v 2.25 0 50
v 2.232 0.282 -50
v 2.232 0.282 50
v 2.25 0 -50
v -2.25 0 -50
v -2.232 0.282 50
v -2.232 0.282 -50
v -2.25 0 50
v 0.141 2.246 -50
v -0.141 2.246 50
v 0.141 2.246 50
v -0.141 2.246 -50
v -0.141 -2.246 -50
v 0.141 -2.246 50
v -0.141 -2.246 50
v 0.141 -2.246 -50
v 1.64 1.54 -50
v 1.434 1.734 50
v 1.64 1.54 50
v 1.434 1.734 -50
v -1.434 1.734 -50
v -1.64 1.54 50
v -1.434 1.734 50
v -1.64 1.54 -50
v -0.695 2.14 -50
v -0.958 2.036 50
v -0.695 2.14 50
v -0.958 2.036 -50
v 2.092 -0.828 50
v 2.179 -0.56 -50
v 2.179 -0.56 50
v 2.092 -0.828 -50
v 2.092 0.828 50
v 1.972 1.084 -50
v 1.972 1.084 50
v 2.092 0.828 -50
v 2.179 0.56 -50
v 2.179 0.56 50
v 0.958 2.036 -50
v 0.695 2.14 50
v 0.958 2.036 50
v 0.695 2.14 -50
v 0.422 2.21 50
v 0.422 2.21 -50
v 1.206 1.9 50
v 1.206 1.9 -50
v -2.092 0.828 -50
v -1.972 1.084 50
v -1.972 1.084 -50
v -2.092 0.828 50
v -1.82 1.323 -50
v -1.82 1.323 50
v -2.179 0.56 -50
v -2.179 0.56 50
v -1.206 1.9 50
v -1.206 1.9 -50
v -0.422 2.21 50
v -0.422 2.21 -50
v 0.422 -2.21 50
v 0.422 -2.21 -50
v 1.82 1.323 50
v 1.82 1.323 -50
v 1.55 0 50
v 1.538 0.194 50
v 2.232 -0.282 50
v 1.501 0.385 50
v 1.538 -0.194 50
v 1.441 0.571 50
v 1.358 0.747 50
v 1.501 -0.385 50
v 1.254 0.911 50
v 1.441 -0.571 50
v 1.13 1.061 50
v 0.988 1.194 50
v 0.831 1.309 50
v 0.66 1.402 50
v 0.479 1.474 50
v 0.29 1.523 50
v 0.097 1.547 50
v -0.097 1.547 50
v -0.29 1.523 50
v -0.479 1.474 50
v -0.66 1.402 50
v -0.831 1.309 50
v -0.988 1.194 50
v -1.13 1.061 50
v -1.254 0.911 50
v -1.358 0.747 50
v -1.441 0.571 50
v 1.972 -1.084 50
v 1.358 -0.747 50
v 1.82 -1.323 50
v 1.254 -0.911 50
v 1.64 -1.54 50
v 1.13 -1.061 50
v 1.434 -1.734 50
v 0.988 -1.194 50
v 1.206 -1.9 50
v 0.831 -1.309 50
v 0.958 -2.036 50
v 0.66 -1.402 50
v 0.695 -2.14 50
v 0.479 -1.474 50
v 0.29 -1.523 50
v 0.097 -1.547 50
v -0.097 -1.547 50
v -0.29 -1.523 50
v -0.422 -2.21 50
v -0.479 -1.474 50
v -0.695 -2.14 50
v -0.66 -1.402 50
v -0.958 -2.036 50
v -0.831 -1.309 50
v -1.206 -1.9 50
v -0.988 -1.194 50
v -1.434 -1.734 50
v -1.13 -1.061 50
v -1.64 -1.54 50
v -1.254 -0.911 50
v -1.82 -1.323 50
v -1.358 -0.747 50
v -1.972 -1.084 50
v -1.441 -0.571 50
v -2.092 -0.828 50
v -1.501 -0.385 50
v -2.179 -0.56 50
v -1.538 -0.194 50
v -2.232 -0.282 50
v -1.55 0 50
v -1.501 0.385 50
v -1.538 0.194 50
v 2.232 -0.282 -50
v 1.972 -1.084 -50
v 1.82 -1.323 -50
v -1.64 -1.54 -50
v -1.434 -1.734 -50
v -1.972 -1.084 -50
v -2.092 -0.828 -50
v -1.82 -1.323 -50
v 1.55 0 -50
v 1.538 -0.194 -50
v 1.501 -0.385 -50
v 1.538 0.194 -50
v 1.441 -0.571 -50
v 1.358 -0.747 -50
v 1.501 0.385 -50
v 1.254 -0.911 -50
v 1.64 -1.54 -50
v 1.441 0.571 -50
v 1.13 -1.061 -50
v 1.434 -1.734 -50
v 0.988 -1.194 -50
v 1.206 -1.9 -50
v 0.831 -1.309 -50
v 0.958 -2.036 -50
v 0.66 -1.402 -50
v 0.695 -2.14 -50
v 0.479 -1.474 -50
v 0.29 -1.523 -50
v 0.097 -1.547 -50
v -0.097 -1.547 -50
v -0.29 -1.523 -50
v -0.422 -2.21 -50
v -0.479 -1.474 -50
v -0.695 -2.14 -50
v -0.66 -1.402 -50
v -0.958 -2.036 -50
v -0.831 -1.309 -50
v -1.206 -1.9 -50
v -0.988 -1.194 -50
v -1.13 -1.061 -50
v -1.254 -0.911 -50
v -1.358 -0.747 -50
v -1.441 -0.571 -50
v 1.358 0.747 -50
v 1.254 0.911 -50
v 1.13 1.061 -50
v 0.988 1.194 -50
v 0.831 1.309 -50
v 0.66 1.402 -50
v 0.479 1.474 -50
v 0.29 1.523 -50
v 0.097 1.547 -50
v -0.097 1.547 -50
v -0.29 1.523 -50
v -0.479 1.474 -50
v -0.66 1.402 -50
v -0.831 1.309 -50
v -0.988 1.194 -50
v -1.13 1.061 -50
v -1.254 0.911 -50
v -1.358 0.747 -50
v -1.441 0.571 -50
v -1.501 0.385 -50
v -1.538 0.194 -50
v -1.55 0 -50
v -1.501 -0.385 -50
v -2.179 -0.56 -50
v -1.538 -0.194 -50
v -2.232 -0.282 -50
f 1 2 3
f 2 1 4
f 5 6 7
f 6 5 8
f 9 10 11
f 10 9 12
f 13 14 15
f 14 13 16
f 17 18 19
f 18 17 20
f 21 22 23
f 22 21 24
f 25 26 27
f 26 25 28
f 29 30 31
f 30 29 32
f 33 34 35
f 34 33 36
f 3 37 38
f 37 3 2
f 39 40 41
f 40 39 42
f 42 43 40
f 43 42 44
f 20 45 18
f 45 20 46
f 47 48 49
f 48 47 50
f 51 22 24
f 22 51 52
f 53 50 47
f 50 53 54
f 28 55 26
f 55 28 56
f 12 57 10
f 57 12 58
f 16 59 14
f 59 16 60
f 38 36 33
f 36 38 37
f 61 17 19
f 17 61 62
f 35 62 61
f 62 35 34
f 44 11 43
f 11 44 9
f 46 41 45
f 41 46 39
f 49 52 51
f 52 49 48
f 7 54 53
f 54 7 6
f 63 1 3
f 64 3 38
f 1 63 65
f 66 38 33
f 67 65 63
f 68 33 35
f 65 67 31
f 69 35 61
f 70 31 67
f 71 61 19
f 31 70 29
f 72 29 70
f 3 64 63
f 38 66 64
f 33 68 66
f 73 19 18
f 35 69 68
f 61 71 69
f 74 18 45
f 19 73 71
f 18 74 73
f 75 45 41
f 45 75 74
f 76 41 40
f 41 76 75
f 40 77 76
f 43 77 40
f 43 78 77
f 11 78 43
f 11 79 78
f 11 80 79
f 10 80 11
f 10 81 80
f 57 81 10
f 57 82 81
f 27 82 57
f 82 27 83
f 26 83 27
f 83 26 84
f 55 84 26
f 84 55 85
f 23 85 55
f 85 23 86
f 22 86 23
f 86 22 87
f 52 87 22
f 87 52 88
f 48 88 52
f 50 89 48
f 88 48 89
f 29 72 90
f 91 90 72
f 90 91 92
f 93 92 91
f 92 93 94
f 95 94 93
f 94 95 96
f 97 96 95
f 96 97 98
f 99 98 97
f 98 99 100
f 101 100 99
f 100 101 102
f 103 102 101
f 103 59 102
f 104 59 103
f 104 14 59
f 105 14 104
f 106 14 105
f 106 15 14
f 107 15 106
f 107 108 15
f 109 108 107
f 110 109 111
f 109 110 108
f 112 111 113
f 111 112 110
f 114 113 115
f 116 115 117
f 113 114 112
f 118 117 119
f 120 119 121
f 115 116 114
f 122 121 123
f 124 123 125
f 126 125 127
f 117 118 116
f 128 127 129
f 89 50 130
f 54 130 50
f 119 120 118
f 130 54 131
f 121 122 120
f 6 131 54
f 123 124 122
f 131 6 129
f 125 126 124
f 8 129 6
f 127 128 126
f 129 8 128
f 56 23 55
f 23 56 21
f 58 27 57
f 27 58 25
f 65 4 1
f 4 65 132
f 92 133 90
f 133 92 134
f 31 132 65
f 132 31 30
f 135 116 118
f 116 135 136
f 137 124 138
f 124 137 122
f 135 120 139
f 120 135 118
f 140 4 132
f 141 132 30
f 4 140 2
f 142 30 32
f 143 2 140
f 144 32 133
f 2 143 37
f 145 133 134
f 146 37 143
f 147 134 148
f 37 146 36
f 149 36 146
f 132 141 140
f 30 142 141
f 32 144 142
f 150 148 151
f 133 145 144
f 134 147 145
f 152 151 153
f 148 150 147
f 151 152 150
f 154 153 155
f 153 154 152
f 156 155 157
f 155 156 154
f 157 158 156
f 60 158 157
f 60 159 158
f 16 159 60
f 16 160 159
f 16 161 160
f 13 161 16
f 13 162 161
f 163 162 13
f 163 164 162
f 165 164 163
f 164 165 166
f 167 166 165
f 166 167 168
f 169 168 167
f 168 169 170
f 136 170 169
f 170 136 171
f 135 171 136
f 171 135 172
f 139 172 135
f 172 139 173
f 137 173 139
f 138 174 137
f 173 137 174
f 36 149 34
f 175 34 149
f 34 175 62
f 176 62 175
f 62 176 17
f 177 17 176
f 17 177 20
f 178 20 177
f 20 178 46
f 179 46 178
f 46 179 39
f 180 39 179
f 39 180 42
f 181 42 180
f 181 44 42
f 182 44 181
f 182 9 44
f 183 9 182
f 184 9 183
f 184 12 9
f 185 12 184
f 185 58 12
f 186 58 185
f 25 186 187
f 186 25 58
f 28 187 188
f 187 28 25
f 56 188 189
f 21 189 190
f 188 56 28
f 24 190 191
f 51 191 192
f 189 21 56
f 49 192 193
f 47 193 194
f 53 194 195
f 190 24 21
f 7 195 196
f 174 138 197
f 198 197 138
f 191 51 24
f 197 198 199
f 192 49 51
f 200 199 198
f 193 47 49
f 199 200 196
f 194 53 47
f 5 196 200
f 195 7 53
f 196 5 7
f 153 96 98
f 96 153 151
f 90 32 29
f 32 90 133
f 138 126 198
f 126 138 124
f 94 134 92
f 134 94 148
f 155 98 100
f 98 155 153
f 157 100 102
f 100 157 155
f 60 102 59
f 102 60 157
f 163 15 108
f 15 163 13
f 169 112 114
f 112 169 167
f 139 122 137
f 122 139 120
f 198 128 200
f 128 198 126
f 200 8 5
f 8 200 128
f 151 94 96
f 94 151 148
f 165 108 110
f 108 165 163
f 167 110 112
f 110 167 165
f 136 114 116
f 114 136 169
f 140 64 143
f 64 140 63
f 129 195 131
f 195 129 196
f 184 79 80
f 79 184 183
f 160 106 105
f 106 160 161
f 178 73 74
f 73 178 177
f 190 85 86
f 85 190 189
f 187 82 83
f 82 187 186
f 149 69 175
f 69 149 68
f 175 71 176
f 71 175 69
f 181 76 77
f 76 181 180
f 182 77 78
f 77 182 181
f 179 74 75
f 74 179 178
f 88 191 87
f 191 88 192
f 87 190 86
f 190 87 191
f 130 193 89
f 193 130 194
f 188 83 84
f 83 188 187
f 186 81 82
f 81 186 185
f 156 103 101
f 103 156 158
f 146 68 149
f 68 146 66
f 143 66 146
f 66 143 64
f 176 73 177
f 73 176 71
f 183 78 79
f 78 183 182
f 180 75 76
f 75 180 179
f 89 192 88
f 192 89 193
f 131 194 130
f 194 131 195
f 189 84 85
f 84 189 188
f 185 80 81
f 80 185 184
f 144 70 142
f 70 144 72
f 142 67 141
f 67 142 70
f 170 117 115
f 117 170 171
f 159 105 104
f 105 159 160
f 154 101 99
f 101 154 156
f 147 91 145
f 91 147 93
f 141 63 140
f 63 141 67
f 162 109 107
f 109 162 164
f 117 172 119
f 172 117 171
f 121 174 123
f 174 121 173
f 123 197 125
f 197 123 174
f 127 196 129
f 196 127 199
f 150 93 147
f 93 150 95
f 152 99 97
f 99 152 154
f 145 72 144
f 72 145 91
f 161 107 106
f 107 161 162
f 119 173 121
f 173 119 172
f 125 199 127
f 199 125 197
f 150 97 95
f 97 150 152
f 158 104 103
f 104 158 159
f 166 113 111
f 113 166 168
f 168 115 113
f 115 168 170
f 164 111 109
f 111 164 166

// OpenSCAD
$fn = 50;


difference() {
	union() {
		translate(v = [0, 0, -50.0000000000]) {
			cylinder(h = 100, r = 2.2500000000);
		}
	}
	union() {
		translate(v = [0, 0, -100.0000000000]) {
			cylinder(h = 200, r = 1.5500000000);
		}
	}
}
